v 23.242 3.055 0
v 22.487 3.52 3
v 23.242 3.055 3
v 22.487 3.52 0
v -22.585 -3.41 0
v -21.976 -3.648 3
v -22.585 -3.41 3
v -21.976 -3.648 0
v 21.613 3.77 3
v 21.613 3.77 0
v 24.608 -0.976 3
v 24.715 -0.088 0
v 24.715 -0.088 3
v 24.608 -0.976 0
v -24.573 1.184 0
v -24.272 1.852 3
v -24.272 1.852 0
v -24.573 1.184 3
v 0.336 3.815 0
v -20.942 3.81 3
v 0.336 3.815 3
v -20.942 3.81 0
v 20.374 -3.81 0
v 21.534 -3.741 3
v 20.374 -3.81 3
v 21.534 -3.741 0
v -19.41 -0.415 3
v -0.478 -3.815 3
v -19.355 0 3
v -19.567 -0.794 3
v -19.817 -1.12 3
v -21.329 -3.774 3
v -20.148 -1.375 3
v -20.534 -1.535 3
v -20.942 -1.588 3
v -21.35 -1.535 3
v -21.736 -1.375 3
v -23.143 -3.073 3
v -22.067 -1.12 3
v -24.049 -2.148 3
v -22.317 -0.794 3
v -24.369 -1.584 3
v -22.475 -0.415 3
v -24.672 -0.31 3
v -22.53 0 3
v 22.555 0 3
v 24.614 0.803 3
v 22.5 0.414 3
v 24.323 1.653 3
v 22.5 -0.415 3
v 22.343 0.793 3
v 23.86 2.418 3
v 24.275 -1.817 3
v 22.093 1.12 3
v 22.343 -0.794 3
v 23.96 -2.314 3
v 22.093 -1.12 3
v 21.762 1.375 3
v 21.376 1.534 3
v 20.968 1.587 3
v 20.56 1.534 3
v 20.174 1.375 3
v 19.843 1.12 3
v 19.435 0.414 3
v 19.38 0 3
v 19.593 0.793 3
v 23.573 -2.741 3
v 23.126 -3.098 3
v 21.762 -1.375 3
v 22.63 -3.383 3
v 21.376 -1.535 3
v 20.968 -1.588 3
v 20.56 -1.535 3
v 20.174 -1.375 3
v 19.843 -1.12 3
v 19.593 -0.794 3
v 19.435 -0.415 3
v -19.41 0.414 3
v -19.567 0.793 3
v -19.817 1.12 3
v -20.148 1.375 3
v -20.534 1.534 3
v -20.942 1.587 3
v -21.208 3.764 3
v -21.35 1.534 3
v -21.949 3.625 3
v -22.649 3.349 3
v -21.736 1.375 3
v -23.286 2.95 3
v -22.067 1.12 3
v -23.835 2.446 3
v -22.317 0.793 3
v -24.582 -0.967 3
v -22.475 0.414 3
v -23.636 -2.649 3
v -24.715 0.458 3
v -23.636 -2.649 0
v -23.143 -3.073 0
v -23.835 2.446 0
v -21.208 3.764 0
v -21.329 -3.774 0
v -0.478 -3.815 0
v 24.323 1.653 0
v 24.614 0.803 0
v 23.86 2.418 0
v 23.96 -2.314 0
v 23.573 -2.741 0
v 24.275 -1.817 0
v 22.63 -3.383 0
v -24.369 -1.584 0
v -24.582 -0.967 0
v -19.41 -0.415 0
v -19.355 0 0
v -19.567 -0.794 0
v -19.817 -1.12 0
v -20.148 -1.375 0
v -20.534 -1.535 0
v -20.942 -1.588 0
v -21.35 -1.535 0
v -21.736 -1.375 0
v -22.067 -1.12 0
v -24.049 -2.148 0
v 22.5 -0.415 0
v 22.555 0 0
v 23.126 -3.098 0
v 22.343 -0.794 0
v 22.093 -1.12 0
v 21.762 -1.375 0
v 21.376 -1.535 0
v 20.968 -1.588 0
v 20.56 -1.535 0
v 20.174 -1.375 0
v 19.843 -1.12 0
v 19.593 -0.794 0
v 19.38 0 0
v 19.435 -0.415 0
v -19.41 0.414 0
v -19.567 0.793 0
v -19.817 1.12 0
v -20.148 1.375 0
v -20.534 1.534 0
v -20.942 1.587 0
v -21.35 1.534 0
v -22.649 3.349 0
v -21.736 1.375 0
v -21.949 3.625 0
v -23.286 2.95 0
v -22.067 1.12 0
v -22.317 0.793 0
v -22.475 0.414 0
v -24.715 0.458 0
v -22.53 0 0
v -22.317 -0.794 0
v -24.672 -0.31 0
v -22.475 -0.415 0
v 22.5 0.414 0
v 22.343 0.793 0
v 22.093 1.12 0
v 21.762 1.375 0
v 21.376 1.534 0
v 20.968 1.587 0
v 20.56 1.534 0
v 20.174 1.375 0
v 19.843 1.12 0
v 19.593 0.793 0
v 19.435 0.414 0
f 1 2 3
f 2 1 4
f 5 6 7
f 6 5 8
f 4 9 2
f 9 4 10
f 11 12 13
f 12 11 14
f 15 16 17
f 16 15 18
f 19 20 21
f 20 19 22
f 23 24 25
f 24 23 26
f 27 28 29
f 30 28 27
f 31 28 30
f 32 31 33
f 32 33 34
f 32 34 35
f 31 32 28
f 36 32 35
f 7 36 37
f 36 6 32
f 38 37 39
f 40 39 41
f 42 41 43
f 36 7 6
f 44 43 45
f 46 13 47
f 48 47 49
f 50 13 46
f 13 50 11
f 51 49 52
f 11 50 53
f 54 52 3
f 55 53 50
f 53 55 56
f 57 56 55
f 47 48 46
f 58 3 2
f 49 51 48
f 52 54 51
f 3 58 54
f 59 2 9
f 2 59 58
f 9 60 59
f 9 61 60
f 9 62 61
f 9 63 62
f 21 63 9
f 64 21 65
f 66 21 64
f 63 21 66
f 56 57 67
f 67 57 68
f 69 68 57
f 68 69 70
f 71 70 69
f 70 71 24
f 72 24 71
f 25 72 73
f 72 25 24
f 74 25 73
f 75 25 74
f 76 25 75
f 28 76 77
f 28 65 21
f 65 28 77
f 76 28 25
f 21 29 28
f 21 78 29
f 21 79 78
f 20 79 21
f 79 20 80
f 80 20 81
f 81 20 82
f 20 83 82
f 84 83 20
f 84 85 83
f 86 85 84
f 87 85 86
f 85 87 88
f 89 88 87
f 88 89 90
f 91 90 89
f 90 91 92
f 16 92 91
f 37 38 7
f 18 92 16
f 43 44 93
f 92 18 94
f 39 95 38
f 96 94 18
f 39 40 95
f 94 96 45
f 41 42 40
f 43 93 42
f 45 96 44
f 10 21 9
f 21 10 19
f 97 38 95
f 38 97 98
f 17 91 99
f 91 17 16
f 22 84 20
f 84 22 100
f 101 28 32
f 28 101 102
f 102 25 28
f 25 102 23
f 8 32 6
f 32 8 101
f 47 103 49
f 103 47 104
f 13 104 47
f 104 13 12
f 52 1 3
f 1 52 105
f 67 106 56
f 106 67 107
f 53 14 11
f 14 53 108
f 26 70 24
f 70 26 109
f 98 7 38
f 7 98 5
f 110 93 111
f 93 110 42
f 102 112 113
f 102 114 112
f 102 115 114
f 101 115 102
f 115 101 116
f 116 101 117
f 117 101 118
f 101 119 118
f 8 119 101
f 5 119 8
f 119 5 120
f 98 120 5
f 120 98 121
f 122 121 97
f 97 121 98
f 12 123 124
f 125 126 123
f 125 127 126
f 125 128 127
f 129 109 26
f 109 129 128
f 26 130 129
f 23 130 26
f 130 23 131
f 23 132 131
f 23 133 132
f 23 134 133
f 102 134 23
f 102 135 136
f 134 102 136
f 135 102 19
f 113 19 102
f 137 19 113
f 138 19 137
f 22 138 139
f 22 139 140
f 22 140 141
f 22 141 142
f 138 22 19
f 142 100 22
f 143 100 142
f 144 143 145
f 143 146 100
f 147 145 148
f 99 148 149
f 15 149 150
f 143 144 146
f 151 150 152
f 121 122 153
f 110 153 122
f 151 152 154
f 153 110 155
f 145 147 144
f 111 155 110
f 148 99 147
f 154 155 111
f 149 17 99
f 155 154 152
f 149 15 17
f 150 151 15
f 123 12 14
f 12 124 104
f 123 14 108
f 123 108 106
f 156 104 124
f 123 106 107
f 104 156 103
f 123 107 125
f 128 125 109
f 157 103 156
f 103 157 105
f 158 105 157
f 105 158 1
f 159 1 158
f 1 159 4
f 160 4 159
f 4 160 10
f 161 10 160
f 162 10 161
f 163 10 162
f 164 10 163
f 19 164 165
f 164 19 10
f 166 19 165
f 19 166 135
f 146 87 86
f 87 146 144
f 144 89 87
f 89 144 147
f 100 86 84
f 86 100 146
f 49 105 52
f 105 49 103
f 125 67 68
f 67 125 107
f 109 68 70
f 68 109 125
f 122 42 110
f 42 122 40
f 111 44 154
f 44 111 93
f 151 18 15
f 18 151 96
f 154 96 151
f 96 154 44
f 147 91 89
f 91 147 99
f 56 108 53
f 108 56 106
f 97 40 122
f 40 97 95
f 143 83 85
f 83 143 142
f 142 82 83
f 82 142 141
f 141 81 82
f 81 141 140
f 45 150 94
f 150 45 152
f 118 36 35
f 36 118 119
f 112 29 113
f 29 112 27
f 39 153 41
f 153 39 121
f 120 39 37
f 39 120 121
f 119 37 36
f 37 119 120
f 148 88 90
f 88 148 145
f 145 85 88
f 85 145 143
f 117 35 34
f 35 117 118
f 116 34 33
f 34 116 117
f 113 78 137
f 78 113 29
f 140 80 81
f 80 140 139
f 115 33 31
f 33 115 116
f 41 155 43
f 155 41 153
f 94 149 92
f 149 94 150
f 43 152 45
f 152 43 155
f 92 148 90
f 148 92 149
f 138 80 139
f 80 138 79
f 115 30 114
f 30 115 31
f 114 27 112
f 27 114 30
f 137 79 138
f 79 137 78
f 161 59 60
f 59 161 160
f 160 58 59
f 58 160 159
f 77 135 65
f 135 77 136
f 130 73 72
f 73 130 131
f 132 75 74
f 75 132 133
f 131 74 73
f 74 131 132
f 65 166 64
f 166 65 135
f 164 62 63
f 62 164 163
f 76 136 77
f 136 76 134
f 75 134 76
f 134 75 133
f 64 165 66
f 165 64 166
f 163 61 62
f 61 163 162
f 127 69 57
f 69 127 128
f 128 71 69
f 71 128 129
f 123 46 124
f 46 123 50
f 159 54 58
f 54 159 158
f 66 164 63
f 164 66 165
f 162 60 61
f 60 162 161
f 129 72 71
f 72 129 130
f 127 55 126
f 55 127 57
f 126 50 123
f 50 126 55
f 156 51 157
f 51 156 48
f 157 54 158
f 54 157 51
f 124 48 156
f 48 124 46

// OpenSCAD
// Module names are of the form poly_<inkscape-path-id>().  As a result,
// you can associate a polygon in this OpenSCAD program with the corresponding
// SVG element in the Inkscape document by looking for the XML element with
// the attribute id="inkscape-path-id".

// fudge value is used to ensure that subtracted solids are a tad taller
// in the z dimension than the polygon being subtracted from.  This helps
// keep the resulting .stl file manifold.
fudge = 0.1;

module poly_path918(h)
{
  scale([25.4/96, -25.4/96, 1]) union()
  {
    difference()
    {
       linear_extrude(height=h)
         polygon([[-79.151235,-14.398881],[1.269982,-14.417644],[81.687867,-14.247781],[84.990531,-13.303766],[87.842926,-11.545500],[90.178047,-9.137912],[91.928884,-6.245931],[93.028432,-3.034488],[93.409683,0.331487],[93.005631,3.687066],[91.749267,6.867319],[90.557141,8.745364],[89.095578,10.359250],[87.406291,11.707252],[85.530997,12.787644],[81.389246,14.138700],[77.004047,14.398619],[-1.805650,14.417644],[-80.614191,14.265819],[-83.057818,13.788092],[-85.360835,12.889845],[-87.470102,11.615795],[-89.332481,10.010656],[-90.894834,8.119144],[-92.104022,5.985973],[-92.906908,3.655860],[-93.250351,1.173519],[-93.409683,-1.730312],[-92.874812,-4.474933],[-91.736254,-7.000125],[-90.084527,-9.245669],[-88.010147,-11.151346],[-85.603632,-12.656936],[-82.955500,-13.702221],[-80.156266,-14.226981],[-79.151235,-14.398281]]);
       translate([0, 0, -fudge])
         linear_extrude(height=h+2*fudge)
           polygon([[-73.151235,0.001119],[-73.358928,-1.564387],[-73.955083,-2.998881],[-74.899314,-4.232413],[-76.151235,-5.195034],[-77.610850,-5.797919],[-79.151235,-5.998881],[-80.691621,-5.797919],[-82.151235,-5.195034],[-83.403157,-4.232413],[-84.347388,-2.998881],[-84.943542,-1.564387],[-85.151235,0.001119],[-84.943542,1.566625],[-84.347388,3.001119],[-83.403157,4.234651],[-82.151235,5.197271],[-80.691621,5.800157],[-79.151235,6.001119],[-77.610850,5.800157],[-76.151235,5.197271],[-74.899314,4.234651],[-73.955083,3.001119],[-73.358928,1.566625],[-73.151235,0.001119]]);
       translate([0, 0, -fudge])
         linear_extrude(height=h+2*fudge)
           polygon([[85.248767,0.001119],[85.041074,-1.564387],[84.444919,-2.998881],[83.500688,-4.232413],[82.248767,-5.195034],[80.789152,-5.797919],[79.248767,-5.998881],[77.708381,-5.797919],[76.248767,-5.195034],[74.996845,-4.232413],[74.052614,-2.998881],[73.456460,-1.564387],[73.248767,0.001119],[73.456460,1.566625],[74.052614,3.001119],[74.996845,4.234651],[76.248767,5.197271],[77.708381,5.800157],[79.248767,6.001119],[80.789152,5.800157],[82.248767,5.197271],[83.500688,4.234651],[84.444919,3.001119],[85.041074,1.566625],[85.248767,0.001119]]);
    }
  }
}

module inkscape(h)
{

poly_path918(h);
}

inkscape(3);
